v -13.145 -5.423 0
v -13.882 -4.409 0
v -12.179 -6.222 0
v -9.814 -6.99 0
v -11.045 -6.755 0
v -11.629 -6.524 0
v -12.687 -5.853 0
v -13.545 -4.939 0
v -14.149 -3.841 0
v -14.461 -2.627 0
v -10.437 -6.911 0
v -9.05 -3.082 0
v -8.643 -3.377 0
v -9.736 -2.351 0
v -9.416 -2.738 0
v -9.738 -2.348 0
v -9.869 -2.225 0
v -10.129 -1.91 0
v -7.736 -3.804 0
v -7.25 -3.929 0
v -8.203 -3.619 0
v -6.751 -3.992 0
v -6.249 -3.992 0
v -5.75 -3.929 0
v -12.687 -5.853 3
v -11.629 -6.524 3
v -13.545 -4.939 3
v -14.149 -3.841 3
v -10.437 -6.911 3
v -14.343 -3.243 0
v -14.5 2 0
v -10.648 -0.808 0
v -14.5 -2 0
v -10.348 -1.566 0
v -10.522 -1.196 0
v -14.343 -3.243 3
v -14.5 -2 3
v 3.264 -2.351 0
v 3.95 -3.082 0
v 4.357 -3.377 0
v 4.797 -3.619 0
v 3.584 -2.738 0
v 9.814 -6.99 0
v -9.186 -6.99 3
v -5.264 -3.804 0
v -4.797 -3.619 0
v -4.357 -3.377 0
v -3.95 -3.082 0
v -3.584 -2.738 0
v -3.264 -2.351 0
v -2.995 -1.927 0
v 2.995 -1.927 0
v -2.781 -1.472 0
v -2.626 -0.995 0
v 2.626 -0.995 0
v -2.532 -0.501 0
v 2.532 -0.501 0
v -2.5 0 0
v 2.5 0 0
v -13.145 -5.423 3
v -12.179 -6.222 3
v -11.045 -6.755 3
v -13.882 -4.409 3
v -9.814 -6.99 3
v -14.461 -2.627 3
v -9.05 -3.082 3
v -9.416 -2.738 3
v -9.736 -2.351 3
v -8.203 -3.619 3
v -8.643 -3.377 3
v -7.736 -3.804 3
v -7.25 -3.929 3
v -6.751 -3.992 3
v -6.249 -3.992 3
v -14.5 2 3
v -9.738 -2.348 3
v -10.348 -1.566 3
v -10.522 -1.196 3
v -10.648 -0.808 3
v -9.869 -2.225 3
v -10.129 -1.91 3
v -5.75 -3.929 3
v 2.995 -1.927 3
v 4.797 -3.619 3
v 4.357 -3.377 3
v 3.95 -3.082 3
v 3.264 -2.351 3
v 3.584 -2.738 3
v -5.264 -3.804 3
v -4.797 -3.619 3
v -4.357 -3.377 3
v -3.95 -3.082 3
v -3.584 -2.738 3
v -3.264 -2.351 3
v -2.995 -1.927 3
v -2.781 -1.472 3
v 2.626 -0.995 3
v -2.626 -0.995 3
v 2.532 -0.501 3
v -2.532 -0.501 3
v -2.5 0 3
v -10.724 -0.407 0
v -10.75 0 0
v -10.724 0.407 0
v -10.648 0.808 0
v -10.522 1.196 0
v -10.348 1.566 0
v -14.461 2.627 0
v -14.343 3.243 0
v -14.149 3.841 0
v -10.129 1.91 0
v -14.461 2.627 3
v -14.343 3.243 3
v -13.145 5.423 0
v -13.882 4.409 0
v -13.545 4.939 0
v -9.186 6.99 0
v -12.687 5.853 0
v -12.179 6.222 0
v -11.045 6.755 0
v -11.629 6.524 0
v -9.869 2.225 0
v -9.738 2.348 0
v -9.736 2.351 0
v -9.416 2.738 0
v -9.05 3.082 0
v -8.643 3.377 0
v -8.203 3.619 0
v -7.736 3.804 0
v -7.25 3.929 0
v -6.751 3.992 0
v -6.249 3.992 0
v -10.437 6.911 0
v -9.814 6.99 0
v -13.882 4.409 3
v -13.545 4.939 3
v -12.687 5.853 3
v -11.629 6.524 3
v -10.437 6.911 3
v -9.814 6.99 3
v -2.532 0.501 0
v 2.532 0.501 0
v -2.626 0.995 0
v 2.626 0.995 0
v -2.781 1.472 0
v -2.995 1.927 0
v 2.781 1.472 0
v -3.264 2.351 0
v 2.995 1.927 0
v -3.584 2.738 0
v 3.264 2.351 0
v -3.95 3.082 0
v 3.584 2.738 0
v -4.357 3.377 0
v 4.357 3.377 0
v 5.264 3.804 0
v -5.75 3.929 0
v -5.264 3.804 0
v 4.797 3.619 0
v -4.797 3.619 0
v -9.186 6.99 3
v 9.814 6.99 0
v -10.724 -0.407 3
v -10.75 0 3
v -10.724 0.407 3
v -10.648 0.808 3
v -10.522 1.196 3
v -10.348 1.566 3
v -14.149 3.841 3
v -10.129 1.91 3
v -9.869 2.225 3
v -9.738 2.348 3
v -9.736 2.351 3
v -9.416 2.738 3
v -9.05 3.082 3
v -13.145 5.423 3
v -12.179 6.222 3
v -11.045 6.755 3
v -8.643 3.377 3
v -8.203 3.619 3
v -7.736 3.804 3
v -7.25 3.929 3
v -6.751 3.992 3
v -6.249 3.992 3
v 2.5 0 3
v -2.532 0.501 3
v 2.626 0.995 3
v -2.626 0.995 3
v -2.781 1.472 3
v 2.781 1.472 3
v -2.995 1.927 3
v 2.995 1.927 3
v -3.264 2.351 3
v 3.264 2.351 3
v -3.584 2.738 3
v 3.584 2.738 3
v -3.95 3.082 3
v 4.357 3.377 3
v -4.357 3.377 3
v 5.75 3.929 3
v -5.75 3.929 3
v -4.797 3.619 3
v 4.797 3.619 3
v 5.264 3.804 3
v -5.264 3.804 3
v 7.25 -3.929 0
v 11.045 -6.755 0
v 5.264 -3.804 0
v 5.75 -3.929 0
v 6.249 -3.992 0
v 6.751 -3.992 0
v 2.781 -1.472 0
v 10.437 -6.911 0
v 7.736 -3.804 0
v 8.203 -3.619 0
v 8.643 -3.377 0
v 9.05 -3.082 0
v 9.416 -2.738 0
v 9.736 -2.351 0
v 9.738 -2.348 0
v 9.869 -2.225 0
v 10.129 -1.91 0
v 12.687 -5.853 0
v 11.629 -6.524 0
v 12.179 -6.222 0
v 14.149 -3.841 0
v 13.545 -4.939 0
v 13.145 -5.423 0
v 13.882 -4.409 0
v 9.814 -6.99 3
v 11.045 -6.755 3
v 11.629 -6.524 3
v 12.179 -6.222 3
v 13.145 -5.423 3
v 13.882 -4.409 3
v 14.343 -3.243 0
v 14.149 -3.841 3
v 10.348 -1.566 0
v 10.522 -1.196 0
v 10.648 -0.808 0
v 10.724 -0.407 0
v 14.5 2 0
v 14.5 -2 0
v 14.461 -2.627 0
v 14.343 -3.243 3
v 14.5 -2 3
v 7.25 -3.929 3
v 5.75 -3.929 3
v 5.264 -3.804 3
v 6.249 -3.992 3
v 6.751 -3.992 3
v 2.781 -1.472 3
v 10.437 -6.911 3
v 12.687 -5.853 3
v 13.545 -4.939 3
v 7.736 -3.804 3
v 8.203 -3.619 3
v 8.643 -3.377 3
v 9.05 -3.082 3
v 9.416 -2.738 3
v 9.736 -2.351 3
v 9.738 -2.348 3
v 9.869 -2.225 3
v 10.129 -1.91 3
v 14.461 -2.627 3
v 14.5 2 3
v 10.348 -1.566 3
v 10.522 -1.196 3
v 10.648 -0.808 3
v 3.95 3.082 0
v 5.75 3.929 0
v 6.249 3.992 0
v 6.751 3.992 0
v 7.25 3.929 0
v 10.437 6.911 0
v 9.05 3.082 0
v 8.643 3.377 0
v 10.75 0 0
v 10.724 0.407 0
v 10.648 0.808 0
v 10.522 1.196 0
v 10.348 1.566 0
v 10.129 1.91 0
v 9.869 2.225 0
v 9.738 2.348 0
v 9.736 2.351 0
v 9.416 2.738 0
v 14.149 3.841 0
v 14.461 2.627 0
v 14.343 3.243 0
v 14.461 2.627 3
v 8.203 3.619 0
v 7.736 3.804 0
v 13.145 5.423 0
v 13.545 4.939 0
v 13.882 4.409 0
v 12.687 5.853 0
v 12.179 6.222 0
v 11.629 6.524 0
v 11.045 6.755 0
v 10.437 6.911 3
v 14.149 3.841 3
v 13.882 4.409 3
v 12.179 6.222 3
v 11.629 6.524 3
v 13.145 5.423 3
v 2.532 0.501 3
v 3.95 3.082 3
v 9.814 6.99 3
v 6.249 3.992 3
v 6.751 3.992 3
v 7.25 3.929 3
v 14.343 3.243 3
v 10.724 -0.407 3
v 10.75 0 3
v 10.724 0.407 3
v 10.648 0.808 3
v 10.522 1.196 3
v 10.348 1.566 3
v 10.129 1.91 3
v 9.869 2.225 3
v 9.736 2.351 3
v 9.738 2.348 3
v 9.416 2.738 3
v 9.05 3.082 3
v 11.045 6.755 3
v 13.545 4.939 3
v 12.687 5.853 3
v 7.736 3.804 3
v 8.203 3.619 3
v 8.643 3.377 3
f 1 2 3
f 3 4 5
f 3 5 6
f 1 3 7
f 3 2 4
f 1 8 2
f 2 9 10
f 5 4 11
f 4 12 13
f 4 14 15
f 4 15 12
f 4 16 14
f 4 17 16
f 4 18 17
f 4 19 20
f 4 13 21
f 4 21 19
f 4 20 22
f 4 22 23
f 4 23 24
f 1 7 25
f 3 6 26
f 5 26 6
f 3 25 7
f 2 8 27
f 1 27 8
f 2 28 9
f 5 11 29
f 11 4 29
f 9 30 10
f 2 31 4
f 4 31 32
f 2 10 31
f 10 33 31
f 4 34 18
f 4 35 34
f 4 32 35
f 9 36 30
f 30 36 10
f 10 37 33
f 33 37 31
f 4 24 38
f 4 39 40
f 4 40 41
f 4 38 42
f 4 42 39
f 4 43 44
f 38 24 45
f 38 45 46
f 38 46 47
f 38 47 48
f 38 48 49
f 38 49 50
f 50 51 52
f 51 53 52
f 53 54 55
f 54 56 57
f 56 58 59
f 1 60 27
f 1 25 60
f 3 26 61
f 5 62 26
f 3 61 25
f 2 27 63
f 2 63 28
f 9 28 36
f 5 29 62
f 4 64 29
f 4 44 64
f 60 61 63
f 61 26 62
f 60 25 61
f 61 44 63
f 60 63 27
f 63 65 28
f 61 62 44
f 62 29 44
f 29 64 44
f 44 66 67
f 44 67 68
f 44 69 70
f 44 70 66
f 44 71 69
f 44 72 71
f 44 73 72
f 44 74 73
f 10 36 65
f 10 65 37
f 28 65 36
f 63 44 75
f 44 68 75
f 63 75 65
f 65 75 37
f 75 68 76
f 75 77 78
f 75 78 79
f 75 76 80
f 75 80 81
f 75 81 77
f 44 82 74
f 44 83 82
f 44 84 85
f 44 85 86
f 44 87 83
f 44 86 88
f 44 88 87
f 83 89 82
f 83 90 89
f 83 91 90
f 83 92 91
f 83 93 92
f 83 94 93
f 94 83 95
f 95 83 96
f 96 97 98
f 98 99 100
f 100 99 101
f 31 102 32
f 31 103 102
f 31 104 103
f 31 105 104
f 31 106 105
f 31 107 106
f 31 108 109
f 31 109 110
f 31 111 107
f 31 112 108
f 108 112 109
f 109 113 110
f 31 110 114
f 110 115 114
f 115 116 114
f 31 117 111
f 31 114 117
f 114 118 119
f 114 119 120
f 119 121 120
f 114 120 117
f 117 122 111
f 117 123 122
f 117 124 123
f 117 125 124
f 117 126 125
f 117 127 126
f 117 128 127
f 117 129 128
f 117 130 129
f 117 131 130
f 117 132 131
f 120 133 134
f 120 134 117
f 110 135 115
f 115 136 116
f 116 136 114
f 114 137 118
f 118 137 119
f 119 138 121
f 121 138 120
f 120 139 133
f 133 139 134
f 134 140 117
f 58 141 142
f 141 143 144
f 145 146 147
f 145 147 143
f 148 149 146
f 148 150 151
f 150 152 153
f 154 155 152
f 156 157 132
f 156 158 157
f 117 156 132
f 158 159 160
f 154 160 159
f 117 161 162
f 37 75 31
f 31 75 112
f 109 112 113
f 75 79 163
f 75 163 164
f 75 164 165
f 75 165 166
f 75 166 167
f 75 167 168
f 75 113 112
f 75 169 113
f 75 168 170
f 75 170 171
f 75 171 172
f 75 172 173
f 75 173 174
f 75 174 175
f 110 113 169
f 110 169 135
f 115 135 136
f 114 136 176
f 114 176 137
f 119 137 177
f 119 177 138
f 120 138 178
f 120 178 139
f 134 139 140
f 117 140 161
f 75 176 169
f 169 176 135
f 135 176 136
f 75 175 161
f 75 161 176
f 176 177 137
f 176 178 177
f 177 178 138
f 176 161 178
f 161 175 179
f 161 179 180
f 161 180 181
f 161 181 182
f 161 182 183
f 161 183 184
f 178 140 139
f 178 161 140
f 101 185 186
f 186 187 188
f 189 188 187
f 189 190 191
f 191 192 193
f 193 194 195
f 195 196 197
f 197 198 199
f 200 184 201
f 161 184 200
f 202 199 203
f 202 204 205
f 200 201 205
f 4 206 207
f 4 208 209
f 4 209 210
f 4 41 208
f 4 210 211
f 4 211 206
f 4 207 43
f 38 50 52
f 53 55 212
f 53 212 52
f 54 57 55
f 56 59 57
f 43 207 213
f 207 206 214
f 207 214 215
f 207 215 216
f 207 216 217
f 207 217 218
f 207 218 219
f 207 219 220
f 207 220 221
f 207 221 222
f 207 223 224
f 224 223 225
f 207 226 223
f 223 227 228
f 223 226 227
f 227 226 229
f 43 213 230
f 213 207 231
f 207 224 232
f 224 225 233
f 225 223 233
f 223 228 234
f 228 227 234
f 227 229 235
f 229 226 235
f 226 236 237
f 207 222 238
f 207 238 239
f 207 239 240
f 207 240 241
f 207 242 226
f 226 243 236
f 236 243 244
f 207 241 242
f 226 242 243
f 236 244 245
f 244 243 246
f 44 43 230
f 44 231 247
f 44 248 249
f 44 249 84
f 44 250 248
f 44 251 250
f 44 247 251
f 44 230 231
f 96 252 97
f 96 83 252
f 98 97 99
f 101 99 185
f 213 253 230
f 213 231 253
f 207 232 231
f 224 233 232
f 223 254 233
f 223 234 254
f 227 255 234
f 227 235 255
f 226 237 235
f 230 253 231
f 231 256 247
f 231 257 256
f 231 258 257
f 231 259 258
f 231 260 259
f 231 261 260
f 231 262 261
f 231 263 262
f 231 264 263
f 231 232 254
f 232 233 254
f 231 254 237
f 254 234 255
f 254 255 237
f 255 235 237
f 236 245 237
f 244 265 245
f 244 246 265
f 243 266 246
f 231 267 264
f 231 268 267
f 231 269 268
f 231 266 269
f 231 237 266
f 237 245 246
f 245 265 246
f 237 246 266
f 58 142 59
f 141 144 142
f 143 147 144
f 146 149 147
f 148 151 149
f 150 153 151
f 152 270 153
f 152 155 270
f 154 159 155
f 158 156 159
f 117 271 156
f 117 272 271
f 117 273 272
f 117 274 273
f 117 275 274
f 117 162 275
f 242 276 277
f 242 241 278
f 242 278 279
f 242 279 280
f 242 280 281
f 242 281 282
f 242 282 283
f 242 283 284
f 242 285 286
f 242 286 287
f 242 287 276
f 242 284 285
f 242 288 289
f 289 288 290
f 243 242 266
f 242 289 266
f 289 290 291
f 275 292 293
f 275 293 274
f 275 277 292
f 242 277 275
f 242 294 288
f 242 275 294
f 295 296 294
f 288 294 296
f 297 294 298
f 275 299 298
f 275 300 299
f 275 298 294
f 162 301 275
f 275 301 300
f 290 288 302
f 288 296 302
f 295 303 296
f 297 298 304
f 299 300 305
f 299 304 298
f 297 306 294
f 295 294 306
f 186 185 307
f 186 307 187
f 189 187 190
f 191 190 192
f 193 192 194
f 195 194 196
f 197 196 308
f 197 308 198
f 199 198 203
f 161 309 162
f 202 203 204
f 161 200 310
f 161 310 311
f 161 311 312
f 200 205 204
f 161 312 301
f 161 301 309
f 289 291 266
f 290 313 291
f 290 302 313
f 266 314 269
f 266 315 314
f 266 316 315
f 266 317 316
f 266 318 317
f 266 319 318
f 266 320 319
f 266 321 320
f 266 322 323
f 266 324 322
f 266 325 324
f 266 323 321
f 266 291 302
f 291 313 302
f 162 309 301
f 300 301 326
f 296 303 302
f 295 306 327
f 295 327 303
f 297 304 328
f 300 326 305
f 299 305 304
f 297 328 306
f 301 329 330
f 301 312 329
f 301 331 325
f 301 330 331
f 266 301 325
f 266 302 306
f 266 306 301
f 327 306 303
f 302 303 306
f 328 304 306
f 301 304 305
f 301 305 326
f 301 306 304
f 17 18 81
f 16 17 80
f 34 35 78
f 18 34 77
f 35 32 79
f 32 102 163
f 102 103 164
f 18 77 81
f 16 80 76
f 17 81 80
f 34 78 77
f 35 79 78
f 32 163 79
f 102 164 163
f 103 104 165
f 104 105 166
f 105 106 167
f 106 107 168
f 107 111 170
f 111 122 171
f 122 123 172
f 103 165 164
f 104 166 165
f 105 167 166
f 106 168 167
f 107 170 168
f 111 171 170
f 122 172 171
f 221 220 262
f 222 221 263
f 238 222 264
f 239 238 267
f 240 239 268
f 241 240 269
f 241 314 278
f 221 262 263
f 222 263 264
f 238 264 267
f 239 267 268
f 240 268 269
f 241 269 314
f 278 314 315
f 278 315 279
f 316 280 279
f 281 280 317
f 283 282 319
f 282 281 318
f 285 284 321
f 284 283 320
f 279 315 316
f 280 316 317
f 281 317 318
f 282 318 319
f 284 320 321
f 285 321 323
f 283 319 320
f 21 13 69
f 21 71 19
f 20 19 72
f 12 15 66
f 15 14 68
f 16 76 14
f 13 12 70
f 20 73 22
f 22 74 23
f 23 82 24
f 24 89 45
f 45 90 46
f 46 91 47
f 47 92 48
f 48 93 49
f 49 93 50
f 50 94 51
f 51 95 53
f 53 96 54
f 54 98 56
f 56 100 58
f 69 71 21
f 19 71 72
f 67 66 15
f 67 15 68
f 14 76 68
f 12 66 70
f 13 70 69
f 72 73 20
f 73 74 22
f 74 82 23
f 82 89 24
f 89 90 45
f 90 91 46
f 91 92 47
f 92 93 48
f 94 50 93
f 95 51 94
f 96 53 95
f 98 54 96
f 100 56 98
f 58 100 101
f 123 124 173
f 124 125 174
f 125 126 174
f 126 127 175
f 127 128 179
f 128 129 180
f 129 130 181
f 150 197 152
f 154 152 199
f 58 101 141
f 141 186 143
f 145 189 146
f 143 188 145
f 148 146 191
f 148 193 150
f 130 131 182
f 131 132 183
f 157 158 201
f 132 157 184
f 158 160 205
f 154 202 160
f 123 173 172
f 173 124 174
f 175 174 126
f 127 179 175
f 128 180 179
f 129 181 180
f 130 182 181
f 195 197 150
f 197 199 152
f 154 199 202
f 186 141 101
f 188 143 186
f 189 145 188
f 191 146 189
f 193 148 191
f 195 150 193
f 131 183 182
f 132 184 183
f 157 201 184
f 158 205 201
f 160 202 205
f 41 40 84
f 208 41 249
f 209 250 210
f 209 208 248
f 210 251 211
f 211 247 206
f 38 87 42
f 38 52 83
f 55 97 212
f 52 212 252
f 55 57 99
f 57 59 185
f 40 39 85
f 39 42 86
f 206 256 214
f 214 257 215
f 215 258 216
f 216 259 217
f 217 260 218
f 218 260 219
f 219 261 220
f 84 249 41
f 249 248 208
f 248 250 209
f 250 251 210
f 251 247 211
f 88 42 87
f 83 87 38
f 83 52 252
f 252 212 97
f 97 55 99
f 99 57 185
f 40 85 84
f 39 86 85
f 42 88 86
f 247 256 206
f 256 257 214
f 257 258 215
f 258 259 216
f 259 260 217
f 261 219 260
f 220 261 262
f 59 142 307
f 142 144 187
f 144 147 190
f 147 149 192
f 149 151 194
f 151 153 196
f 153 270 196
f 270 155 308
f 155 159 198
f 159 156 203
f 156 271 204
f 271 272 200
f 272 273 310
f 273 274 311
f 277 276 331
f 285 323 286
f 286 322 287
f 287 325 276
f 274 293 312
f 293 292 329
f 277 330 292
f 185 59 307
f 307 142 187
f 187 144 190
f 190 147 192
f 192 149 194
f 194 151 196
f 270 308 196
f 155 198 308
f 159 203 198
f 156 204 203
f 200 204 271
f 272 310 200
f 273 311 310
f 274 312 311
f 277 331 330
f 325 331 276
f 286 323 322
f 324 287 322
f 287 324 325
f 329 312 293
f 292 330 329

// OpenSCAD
$fn = 50;

difference() {
	union() {
		hull() {
			translate(v = [-9.5, 2.0, 0]) {
				cylinder(h = 3, r = 5);
			}
			translate(v = [9.5, 2.0, 0]) {
				cylinder(h = 3, r = 5);
			}
			translate(v = [-9.5, -2.0, 0]) {
				cylinder(h = 3, r = 5);
			}
			translate(v = [9.5, -2.0, 0]) {
				cylinder(h = 3, r = 5);
			}
		}
	}
	union() {
		translate(v = [-7.5, 0.0, -100.0]) {
			cylinder(h = 200, r = 3.25);
		}
		translate(v = [7.5, 0.0, -100.0]) {
			cylinder(h = 200, r = 3.25);
		}
		translate(v = [-7.5, 0.0, -100.0]) {
			cylinder(h = 200, r = 1.8);
		}
		translate(v = [7.5, 0.0, -100.0]) {
			cylinder(h = 200, r = 1.8);
		}
		translate(v = [-6.5, 0, 0.0]) {
			cylinder(h = 3, r = 4.0);
		}
		translate(v = [6.5, 0, 0.0]) {
			cylinder(h = 3, r = 4.0);
		}
	}
}
